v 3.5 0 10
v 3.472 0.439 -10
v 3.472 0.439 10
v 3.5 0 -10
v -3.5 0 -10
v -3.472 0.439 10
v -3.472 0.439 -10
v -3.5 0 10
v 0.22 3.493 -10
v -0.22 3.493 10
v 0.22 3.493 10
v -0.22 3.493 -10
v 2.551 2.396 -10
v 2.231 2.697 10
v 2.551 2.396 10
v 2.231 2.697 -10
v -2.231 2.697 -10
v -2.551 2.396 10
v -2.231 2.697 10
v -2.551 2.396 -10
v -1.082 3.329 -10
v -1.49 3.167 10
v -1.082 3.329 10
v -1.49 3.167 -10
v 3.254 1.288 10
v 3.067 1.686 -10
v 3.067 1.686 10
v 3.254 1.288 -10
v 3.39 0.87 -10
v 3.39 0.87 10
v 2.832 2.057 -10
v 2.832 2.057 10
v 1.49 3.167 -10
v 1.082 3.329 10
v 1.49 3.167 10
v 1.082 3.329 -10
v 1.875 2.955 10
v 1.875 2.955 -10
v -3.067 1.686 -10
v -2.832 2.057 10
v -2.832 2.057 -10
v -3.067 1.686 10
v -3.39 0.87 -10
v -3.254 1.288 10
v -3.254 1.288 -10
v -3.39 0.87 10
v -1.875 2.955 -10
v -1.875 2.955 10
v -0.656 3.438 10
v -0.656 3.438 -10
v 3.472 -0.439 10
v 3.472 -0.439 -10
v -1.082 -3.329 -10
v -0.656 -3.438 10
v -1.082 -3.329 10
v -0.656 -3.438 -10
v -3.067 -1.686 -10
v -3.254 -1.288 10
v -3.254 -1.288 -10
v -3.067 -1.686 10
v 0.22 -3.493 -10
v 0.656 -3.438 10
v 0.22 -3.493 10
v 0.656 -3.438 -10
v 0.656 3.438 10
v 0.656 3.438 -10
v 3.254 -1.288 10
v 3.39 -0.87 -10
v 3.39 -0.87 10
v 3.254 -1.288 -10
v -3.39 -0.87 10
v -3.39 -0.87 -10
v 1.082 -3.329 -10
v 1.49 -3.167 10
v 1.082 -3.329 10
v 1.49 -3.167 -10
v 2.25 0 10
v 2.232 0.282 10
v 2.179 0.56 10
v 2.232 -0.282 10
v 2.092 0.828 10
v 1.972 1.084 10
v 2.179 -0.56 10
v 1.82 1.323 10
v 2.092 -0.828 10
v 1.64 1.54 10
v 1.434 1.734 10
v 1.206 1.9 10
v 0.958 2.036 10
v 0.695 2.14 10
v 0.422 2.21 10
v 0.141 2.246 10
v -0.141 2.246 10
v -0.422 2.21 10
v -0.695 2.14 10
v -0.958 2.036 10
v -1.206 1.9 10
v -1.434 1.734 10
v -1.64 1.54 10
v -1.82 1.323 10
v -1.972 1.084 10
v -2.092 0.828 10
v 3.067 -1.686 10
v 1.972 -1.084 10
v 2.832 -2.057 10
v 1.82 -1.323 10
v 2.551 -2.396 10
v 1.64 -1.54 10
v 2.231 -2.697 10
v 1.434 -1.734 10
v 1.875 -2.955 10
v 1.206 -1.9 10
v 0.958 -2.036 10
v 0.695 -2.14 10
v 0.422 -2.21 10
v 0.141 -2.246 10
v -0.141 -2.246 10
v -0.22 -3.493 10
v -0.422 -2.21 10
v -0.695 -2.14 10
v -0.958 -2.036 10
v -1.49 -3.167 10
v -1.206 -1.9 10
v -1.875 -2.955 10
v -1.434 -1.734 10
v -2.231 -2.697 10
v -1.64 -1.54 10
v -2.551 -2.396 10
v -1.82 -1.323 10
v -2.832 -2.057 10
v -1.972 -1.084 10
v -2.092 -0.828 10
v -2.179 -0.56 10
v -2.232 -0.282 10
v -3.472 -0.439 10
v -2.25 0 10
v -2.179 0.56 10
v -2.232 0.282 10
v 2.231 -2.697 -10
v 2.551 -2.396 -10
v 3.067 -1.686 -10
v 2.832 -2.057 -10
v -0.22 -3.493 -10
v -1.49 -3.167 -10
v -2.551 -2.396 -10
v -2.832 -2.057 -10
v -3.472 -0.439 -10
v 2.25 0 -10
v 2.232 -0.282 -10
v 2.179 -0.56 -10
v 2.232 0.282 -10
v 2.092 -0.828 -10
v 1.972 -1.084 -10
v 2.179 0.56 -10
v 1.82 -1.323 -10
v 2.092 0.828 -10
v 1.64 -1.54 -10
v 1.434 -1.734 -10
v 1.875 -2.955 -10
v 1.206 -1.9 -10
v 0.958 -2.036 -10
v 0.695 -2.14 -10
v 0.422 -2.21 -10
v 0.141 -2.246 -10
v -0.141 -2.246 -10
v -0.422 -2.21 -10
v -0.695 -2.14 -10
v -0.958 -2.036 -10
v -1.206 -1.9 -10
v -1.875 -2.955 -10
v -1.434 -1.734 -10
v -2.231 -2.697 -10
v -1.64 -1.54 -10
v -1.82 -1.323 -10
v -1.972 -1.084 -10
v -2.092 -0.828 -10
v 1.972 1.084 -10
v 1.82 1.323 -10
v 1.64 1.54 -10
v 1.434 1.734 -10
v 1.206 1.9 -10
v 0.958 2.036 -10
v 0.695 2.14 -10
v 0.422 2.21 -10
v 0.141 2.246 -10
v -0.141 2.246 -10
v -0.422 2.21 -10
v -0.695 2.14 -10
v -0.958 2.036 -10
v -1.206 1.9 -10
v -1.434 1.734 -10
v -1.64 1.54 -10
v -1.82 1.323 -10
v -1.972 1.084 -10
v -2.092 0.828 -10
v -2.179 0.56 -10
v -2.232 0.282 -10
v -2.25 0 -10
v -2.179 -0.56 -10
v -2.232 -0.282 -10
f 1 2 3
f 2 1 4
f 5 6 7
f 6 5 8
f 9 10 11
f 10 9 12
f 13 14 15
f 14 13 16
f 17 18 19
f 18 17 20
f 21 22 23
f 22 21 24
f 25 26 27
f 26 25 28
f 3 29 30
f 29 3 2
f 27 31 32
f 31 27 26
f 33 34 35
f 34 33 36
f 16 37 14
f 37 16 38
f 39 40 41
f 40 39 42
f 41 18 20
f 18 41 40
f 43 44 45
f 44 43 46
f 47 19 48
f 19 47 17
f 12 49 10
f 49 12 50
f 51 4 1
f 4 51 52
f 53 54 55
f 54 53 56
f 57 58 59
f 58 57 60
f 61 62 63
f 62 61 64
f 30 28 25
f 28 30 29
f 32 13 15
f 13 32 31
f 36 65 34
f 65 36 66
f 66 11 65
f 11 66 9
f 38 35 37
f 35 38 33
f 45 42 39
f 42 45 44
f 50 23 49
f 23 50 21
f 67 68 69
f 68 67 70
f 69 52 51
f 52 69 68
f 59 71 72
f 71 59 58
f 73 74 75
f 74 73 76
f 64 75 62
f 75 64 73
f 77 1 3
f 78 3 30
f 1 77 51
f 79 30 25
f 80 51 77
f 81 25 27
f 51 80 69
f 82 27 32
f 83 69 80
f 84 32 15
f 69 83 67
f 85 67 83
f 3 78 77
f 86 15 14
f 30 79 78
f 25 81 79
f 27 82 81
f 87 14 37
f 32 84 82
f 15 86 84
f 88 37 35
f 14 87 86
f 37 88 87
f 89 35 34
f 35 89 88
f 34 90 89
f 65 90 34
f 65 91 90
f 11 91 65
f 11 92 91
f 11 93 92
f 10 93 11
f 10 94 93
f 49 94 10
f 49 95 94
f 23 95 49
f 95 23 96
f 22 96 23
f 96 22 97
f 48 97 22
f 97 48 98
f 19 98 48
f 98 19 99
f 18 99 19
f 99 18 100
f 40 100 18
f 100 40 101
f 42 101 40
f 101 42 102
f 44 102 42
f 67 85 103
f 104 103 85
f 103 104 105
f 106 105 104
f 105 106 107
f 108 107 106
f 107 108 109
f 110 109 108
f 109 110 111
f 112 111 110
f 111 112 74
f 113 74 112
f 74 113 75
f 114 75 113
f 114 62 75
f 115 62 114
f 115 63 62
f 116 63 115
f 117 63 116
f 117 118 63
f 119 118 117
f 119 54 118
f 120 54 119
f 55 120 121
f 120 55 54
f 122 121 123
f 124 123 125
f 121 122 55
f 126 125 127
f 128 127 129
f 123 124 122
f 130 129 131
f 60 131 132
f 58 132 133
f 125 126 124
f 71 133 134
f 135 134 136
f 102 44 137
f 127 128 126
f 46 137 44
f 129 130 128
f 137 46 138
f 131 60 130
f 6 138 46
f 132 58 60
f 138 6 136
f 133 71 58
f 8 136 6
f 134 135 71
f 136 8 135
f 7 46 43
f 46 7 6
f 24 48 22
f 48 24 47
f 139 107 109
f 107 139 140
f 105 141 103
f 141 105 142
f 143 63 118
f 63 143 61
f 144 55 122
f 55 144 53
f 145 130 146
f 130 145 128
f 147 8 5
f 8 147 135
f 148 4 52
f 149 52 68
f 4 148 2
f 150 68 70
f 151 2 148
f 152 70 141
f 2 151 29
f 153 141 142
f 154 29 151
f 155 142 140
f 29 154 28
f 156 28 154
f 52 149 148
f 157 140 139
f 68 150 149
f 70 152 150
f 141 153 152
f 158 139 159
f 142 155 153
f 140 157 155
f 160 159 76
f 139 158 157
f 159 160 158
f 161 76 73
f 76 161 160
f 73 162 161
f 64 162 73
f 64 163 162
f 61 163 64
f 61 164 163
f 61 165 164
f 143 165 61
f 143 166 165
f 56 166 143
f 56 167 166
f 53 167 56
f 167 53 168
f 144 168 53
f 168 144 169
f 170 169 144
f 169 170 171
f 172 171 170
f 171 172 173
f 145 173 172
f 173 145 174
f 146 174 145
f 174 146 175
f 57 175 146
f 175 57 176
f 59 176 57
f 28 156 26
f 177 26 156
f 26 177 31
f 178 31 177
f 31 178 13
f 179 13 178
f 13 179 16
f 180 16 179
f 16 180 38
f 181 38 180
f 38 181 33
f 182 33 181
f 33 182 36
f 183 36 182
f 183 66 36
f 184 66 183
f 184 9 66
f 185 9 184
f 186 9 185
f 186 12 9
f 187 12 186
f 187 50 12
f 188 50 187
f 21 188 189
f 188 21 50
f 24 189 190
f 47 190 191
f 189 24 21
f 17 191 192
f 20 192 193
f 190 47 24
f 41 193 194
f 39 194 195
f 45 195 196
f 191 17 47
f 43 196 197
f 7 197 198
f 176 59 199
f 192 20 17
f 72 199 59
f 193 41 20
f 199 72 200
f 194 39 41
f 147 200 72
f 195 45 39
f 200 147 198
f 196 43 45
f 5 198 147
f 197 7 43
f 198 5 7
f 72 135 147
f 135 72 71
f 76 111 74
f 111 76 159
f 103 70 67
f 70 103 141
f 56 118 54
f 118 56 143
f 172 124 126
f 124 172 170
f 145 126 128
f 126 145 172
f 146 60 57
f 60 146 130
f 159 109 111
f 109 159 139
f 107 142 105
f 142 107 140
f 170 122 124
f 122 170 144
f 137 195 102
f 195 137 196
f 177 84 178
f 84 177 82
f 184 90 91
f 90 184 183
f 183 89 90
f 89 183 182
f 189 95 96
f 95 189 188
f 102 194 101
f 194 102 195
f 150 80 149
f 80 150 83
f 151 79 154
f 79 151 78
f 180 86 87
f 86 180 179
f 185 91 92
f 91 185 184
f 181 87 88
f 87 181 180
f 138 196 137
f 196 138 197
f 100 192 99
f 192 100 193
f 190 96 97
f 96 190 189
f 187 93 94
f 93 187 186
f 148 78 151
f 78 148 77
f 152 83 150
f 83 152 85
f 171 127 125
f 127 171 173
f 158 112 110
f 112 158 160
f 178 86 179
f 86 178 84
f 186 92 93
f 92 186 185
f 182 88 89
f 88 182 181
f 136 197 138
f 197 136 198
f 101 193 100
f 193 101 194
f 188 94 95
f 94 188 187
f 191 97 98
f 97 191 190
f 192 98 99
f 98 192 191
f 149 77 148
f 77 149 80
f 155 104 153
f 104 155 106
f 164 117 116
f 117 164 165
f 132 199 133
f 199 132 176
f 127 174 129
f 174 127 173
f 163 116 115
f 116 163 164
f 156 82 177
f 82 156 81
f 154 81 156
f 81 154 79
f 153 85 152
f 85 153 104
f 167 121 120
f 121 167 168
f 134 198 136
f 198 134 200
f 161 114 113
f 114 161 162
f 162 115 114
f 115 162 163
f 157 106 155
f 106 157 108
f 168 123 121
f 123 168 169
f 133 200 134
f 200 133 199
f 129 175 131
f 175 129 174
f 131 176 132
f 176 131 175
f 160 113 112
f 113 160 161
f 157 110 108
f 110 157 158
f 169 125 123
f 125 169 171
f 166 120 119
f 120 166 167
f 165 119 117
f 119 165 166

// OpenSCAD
$fn = 50;


difference() {
	union() {
		translate(v = [0, 0, -10.0000000000]) {
			cylinder(h = 20, r = 3.5000000000);
		}
	}
	union() {
		translate(v = [0, 0, -100.0000000000]) {
			cylinder(h = 200, r = 2.2500000000);
		}
	}
}
